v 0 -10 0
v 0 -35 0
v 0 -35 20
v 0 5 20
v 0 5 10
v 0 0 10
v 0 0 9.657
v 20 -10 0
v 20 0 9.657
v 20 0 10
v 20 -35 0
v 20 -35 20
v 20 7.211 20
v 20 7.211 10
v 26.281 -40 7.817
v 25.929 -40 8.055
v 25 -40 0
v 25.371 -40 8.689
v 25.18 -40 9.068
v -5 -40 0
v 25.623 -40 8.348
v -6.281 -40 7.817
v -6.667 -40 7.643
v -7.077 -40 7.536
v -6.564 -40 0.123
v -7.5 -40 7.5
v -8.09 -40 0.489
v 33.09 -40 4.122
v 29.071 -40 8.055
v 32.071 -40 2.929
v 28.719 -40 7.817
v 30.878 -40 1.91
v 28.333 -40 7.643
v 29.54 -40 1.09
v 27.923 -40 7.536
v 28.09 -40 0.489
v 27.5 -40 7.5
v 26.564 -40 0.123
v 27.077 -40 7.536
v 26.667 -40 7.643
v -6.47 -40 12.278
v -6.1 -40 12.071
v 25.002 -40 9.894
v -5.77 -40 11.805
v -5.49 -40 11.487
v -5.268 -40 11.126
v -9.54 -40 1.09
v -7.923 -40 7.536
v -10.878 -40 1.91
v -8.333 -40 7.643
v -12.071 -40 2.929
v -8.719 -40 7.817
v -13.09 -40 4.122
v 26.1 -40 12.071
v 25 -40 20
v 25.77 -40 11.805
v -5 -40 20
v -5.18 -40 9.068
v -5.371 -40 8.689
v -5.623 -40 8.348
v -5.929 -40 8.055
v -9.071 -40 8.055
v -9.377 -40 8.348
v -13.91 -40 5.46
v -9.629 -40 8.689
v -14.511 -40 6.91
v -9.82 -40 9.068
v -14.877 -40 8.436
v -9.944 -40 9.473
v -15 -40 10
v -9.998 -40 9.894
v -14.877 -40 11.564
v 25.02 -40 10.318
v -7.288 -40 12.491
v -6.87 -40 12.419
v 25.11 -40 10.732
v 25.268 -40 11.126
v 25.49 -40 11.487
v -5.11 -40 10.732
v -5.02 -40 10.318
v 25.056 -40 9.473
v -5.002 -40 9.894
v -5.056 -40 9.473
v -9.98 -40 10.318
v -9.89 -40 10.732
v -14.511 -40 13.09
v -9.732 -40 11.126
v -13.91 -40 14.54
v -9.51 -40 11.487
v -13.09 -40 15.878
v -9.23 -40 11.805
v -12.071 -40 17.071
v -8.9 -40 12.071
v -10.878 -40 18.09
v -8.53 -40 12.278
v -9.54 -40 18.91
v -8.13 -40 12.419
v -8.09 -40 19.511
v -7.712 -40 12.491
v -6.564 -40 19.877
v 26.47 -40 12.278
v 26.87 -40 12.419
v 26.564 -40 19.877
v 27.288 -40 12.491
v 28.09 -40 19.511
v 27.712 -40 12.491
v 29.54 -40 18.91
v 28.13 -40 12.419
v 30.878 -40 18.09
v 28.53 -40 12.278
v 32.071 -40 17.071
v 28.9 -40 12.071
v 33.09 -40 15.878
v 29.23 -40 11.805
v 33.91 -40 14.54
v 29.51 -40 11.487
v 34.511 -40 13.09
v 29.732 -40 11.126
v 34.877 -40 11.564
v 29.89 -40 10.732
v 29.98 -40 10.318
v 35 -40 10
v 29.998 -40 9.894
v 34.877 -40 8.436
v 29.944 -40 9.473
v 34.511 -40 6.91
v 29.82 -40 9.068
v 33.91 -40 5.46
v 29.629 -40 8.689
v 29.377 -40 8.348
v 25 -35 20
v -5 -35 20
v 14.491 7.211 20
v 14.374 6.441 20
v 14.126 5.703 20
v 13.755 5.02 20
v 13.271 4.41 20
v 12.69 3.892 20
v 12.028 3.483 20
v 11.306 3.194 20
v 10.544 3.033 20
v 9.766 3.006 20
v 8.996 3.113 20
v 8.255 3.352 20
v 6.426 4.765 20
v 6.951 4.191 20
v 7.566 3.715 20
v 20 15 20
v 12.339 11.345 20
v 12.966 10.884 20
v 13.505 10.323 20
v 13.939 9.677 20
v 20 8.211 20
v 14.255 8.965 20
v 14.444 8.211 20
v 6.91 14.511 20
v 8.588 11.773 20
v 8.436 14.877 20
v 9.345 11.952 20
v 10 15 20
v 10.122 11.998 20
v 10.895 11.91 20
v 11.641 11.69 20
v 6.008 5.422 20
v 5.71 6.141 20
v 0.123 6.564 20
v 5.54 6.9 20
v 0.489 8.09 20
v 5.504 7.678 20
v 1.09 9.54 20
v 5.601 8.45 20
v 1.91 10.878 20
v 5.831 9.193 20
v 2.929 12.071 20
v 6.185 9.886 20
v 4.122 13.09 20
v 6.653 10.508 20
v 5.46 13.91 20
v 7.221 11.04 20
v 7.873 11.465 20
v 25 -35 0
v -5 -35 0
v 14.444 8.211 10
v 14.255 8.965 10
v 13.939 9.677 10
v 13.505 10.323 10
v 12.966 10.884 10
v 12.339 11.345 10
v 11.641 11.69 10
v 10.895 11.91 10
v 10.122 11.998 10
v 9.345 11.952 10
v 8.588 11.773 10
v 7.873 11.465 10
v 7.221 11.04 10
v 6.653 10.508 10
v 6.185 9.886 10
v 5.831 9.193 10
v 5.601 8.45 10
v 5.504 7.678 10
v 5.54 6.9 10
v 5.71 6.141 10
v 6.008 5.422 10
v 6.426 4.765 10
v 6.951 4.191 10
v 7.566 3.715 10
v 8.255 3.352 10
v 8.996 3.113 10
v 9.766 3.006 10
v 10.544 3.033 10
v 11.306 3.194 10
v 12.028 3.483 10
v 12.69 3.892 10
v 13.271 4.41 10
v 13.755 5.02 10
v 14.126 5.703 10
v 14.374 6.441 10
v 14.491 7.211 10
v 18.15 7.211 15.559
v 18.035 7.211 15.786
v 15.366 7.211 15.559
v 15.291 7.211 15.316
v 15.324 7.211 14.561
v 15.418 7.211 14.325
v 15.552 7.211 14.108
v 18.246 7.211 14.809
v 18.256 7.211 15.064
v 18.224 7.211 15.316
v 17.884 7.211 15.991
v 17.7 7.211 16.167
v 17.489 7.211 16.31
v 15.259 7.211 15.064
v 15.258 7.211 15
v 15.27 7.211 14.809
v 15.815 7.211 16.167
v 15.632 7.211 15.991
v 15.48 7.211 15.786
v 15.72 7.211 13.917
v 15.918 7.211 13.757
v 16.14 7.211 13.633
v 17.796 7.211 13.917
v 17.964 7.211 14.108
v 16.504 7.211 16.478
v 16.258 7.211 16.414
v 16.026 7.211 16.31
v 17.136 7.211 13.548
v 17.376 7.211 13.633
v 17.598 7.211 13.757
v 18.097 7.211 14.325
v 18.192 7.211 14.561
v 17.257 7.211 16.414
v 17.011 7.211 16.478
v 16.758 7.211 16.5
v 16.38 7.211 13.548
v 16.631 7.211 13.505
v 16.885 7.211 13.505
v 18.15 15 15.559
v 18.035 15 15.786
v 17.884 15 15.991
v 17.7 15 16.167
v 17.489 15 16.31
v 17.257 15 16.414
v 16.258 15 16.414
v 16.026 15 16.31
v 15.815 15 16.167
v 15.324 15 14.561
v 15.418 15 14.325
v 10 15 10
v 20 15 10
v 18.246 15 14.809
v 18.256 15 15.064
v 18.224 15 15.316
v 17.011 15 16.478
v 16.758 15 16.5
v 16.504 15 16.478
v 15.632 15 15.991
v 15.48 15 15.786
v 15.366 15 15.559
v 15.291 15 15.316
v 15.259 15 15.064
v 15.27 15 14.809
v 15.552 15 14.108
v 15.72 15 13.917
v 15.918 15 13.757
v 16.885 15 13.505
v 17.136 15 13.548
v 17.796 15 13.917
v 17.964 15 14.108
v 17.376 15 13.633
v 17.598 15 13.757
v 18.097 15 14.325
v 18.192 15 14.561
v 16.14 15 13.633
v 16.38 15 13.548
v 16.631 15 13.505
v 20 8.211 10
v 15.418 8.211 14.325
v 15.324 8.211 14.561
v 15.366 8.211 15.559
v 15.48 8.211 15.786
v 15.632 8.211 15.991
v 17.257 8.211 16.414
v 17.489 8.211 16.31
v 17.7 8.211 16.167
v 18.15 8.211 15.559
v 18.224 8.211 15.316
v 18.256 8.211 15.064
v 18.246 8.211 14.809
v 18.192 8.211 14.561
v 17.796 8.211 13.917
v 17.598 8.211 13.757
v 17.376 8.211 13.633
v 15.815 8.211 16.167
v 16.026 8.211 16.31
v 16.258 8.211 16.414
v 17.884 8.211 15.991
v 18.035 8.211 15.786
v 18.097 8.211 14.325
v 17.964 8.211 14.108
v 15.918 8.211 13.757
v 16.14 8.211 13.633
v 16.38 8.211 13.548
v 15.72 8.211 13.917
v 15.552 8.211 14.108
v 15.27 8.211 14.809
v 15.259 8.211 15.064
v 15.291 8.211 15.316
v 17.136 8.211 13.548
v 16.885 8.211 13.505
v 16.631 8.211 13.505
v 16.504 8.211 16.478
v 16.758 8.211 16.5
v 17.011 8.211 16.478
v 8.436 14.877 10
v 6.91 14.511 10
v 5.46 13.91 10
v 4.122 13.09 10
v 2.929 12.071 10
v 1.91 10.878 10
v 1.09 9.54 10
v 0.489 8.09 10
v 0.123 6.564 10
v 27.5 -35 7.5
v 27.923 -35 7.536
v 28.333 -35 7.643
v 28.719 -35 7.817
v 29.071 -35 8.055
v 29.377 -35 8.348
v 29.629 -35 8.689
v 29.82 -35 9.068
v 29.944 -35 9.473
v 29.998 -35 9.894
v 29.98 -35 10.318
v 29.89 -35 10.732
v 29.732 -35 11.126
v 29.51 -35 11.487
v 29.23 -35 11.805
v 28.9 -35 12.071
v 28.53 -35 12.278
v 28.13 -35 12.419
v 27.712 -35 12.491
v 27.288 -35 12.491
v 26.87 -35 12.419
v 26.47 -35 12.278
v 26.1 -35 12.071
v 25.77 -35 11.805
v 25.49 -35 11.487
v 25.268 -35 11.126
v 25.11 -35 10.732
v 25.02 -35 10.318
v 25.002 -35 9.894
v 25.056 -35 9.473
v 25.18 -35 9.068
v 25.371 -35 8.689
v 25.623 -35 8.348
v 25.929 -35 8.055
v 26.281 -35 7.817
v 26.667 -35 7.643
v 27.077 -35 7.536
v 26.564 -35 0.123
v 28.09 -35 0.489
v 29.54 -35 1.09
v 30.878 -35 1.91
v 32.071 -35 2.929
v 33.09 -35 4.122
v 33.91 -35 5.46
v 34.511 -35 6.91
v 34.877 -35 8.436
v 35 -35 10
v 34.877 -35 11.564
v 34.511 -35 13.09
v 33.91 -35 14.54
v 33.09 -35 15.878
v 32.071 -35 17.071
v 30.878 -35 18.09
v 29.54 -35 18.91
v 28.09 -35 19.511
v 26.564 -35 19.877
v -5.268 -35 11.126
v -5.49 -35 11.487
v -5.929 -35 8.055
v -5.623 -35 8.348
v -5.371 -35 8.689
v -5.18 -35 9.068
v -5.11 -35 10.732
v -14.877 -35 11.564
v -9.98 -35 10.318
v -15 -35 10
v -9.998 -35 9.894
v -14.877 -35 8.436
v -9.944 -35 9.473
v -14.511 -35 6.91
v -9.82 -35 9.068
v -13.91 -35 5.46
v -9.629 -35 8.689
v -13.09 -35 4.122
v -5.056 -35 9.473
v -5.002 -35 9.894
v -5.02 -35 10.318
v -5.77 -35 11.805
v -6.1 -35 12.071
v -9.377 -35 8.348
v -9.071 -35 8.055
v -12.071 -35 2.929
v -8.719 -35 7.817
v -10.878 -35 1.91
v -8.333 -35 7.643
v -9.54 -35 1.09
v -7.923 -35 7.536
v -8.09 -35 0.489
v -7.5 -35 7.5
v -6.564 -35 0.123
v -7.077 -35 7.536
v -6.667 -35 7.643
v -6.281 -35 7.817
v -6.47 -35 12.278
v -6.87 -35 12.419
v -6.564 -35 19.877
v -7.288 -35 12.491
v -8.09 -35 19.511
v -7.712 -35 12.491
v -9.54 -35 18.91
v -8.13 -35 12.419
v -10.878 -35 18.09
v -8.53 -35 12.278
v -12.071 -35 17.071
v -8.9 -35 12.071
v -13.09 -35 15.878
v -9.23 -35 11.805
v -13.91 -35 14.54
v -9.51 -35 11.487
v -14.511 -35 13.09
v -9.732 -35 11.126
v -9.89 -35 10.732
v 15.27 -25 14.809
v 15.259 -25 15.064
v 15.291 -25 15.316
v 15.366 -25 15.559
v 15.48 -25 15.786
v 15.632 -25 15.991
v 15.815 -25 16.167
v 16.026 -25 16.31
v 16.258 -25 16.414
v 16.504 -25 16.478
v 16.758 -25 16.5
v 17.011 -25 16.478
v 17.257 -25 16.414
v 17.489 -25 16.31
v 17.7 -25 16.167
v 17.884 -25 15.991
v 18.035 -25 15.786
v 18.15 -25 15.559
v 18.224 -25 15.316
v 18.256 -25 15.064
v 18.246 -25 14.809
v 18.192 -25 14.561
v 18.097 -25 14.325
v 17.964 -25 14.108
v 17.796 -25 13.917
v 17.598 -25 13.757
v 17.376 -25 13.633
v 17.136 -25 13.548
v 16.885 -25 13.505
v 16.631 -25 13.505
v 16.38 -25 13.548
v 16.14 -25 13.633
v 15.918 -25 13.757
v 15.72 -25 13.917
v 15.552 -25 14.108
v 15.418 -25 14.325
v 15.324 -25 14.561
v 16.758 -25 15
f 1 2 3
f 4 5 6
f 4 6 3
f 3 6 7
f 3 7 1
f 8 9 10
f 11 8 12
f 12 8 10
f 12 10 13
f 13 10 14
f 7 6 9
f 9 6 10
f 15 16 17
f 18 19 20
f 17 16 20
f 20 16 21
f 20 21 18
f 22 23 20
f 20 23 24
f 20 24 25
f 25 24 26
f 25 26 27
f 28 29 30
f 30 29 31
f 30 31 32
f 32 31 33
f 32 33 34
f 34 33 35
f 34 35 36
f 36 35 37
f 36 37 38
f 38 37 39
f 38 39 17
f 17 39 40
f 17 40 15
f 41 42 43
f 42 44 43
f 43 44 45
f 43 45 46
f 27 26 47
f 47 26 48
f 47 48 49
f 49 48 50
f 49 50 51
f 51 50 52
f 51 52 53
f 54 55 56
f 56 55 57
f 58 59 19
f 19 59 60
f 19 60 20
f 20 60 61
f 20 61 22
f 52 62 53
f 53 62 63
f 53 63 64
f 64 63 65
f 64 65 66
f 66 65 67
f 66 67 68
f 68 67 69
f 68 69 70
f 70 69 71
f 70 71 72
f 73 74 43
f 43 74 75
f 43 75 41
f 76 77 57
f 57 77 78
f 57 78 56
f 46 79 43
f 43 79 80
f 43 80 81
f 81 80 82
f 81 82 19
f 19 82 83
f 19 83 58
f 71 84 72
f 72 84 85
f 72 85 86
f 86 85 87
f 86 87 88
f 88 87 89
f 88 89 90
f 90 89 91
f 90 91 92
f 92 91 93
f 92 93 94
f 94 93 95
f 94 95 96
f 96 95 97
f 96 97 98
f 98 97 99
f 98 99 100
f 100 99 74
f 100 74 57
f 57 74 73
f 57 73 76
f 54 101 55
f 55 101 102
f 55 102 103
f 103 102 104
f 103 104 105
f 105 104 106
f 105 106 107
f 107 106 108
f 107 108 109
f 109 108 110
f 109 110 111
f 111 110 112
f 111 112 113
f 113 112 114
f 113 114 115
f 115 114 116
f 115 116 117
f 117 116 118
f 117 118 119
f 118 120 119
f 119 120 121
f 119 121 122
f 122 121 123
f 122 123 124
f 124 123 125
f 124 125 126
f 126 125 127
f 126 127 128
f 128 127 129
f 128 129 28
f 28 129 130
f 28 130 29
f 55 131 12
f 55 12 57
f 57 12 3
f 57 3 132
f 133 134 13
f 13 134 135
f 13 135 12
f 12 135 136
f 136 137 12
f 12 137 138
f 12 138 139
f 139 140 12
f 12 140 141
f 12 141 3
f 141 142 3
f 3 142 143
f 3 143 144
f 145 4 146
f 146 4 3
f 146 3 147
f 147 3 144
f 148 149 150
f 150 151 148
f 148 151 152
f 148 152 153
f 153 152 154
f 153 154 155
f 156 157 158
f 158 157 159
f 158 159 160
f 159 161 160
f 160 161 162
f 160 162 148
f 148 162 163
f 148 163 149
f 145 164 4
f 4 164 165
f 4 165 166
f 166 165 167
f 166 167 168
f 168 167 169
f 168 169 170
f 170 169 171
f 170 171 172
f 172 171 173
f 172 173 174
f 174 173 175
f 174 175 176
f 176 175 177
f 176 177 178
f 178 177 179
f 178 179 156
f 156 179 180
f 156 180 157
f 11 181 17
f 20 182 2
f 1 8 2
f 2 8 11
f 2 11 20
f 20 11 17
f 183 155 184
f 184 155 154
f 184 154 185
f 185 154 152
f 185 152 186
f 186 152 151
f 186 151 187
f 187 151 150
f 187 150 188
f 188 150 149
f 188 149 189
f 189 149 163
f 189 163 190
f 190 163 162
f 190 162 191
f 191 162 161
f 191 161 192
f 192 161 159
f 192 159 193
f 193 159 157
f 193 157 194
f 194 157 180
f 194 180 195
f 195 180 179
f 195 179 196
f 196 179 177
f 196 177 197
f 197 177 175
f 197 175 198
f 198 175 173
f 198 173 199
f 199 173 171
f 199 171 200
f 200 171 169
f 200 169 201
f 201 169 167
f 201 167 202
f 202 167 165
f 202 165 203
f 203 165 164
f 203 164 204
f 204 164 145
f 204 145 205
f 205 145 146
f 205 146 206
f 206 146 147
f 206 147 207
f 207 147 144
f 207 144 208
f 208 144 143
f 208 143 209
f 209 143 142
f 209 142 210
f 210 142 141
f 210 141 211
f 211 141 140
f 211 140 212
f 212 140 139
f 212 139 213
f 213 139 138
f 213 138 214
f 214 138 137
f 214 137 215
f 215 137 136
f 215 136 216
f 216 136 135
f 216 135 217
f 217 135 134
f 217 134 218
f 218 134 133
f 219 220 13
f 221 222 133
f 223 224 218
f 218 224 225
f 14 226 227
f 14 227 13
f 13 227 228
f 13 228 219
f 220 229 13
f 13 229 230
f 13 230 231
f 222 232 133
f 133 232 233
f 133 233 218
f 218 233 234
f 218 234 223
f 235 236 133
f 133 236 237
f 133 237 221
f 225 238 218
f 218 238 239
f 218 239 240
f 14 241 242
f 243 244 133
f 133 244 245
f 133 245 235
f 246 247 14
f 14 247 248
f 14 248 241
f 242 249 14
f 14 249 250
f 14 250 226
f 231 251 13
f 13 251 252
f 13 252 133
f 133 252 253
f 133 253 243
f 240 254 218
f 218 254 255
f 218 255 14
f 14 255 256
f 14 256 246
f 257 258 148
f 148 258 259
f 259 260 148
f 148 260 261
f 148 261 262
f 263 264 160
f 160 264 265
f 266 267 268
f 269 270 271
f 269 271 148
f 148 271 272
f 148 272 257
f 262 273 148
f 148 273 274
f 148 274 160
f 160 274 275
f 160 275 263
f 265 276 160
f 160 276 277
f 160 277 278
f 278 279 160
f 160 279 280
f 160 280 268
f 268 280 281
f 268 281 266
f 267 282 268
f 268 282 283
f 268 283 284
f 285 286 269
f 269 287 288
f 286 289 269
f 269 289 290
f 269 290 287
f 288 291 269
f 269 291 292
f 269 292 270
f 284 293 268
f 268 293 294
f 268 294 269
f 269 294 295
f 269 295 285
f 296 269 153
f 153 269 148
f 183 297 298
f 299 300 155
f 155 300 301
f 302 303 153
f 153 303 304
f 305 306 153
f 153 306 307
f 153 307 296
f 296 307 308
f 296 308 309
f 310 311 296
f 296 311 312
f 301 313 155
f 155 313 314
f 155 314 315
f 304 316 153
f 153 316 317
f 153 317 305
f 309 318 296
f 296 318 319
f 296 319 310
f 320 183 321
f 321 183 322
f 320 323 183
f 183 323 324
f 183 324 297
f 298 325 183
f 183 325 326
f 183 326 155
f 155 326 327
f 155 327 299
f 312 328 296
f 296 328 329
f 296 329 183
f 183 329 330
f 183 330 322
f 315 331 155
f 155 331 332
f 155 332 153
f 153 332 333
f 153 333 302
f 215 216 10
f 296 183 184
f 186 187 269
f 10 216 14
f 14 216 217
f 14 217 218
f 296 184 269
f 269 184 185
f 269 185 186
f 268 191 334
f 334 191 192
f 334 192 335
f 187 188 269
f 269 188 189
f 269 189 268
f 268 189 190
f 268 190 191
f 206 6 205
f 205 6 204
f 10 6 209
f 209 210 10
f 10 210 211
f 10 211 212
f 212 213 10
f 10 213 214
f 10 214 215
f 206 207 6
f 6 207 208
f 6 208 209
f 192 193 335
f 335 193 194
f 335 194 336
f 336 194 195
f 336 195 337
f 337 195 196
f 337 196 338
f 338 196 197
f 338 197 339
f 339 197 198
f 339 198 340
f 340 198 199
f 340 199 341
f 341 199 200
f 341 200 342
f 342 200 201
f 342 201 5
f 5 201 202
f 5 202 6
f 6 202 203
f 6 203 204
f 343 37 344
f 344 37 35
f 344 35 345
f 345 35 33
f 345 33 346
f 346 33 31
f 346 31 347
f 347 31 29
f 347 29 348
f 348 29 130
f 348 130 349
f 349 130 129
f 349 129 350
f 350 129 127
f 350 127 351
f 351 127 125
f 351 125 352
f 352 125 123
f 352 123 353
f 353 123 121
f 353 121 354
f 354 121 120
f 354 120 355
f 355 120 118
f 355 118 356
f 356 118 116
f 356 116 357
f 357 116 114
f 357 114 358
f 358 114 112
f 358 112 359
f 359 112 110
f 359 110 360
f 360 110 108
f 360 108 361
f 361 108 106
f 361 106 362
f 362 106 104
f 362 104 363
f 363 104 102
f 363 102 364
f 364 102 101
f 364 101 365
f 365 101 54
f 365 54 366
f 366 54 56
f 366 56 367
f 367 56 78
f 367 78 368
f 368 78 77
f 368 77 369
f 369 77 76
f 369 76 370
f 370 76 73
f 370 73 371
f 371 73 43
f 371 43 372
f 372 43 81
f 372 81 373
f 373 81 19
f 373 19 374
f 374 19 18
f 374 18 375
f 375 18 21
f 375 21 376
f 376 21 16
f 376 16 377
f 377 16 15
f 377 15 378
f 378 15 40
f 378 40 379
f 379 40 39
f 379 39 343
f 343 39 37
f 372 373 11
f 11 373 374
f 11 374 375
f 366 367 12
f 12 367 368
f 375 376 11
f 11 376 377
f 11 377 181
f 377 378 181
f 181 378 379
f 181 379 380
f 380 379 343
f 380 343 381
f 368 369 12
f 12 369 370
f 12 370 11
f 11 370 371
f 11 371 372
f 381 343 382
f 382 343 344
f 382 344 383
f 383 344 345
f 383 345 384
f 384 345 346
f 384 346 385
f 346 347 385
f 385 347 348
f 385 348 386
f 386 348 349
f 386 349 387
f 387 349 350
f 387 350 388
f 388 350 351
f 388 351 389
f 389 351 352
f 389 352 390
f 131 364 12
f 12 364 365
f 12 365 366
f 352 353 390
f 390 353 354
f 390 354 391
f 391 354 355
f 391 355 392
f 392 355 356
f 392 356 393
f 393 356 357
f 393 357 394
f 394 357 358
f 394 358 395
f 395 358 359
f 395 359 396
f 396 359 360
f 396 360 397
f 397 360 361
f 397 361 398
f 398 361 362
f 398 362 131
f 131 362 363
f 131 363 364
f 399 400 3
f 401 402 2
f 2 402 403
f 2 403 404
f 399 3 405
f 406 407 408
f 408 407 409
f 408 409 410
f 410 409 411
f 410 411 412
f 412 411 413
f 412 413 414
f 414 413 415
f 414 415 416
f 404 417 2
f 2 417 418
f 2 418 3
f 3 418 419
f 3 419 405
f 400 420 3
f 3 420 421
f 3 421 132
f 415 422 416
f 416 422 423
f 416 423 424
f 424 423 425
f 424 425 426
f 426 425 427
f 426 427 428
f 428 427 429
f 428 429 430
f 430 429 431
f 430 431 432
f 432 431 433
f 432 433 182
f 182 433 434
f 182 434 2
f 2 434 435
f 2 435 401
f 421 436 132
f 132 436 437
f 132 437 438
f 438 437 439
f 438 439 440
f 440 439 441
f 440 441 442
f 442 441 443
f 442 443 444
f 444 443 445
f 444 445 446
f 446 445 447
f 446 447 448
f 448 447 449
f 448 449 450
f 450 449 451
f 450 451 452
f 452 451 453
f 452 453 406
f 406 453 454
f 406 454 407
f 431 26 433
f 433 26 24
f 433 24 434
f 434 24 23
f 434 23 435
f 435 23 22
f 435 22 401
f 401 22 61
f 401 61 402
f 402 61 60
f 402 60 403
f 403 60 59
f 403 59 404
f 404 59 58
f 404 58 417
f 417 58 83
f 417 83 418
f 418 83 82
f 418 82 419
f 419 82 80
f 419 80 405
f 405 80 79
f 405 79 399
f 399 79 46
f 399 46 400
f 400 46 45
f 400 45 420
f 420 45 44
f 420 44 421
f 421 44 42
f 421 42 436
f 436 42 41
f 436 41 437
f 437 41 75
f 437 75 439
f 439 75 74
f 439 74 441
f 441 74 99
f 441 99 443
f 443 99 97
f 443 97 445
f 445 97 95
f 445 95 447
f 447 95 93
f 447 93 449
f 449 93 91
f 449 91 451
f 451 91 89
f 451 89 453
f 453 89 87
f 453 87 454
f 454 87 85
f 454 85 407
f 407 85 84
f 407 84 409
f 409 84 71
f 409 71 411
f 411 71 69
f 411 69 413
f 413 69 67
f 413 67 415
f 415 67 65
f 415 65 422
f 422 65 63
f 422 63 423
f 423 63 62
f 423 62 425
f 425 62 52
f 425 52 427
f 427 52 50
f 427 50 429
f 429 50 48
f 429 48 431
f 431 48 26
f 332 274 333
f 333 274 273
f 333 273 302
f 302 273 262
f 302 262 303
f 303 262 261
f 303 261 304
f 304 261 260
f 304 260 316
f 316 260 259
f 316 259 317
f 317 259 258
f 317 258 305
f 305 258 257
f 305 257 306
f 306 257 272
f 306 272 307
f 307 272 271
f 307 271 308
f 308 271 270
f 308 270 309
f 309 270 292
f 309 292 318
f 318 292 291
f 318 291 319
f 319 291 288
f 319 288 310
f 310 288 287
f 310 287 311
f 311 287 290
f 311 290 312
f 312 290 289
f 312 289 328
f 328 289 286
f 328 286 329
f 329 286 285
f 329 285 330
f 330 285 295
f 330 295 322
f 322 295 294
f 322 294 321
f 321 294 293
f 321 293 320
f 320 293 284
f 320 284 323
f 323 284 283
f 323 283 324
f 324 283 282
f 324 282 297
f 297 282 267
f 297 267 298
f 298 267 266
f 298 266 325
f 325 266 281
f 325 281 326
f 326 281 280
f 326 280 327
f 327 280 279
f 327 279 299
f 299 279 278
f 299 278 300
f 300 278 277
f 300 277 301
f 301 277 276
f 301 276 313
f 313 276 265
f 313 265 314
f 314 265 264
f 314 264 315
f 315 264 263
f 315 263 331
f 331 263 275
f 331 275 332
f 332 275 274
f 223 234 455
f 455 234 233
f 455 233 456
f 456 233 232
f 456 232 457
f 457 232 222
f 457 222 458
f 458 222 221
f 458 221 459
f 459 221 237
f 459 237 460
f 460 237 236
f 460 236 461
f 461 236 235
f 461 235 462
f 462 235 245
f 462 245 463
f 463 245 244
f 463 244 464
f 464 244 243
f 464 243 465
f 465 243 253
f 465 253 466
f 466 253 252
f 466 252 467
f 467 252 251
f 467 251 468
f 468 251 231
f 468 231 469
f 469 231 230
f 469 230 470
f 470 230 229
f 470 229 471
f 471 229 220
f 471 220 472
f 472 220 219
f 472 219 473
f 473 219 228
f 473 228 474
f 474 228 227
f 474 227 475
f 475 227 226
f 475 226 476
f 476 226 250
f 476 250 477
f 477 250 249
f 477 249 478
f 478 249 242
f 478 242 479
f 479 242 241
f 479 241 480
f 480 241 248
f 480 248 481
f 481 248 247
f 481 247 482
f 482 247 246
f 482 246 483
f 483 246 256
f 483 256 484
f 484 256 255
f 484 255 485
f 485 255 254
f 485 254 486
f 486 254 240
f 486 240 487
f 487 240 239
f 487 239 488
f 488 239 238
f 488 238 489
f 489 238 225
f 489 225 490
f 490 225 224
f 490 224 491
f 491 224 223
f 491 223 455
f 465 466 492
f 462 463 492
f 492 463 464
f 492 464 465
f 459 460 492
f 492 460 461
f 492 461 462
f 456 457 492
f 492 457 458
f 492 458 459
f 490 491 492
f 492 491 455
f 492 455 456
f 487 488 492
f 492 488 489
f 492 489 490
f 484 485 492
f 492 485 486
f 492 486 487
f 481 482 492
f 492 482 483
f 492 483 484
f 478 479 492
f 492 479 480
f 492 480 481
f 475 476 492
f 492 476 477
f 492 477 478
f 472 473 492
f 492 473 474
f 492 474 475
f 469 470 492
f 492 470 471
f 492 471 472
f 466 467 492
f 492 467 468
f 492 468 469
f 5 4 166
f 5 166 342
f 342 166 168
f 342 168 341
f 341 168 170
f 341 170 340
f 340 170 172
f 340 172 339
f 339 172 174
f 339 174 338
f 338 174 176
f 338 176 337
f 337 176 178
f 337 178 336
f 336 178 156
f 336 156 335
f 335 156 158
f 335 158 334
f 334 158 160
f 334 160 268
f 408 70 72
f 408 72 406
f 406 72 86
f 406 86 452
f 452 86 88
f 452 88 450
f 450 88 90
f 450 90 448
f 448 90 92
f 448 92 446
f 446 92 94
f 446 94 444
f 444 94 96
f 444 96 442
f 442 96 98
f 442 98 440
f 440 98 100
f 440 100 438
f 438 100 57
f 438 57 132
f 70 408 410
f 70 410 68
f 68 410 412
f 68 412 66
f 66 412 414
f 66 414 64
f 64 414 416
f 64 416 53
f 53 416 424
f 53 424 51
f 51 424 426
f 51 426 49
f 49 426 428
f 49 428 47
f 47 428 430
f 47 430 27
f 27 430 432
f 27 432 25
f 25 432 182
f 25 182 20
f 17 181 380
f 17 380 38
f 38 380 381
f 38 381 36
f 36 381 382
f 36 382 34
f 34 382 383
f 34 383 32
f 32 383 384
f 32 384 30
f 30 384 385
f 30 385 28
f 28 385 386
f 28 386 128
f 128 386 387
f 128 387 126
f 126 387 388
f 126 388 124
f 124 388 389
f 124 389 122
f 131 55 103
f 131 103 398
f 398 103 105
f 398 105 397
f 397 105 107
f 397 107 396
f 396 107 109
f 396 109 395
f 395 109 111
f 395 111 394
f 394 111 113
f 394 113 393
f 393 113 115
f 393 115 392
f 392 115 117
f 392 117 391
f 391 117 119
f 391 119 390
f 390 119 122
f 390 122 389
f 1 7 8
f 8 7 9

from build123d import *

# Parameters (mm, degrees)
ESQUISSE2_W             = 20
ESQUISSE2_H             = 40
BOSS_EXTRU_2_DEPTH      = 20
BOSS_EXTRU_3_DEPTH      = 10
ESQUISSE6_W             = 50
ESQUISSE6_H             = 20
ESQUISSE6_R             = 2.5
BOSS_EXTRU_4_DEPTH      = 5
ESQUISSE8_R             = 1.5
ENL_V_MAT_EXTRU_1_DEPTH = 40
CONG_2_R                = 10
CONG_3_R                = 10
CHANFREIN2_SIZE         = 10
CHANFREIN2_SIZE2        = 9.656887748


with BuildPart() as part:
    # Esquisse2 → Boss.-Extru.2 (new body)
    with BuildSketch(Plane.XY):
        with Locations((10, -20)):
            Rectangle(ESQUISSE2_W, ESQUISSE2_H)
    extrude(amount=BOSS_EXTRU_2_DEPTH)

    # Esquisse3 → Boss.-Extru.3 (add)
    with BuildSketch(Plane.XY.offset(20)):
        with BuildLine():
            Line((0, 15), (0, 0))
            Line((0, 0), (20, 0))
            Line((20, 0), (20, 7.210541204))
            Line((20, 7.210541204), (14.490680751, 7.210541204))
            ThreePointArc((14.490680751, 7.210541204), (5.50498976, 7.288144059), (14.443549392, 8.210541204))
            Line((14.443549392, 8.210541204), (20, 8.210541204))
            Line((20, 8.210541204), (20, 15))
            Line((20, 15), (0, 15))
        make_face()
    extrude(amount=-BOSS_EXTRU_3_DEPTH)

    # Esquisse6 → Boss.-Extru.4 (add)
    with BuildSketch(Plane.XZ.offset(40)):
        with Locations((10, 10)):
            Rectangle(ESQUISSE6_W, ESQUISSE6_H)
        with Locations(Location((-7.5, 10, 0), (0, 0, 270))):
            Circle(ESQUISSE6_R, mode=Mode.SUBTRACT)
        with Locations(Location((27.5, 10, 0), (0, 0, 270))):
            Circle(ESQUISSE6_R, mode=Mode.SUBTRACT)
    extrude(amount=-BOSS_EXTRU_4_DEPTH)

    # Esquisse8 → Enlèv. mat.-Extru.1 (cut)
    with BuildSketch(Plane(origin=(0, 15, 0), x_dir=(1, 0, 0), z_dir=(0, 1, 0))):
        with Locations(Location((16.757752744, -15, 0), (0, 0, 270))):
            Circle(ESQUISSE8_R)
    extrude(amount=-ENL_V_MAT_EXTRU_1_DEPTH, mode=Mode.SUBTRACT)

    # Congé2
    cong_2_edges = [part.edges().sort_by_distance(p)[0] for p in [
        (0, 15, 15),
    ]]
    fillet(cong_2_edges, radius=CONG_2_R)

    # Congé3
    cong_3_edges = [part.edges().sort_by_distance(p)[0] for p in [
        (-15, -37.5, 0),
        (-15, -37.5, 20),
        (35, -37.5, 20),
        (35, -37.5, 0),
    ]]
    fillet(cong_3_edges, radius=CONG_3_R - 0.0001)  # a hair under: the kernel refuses the full size

    # Chanfrein2
    chanfrein2_edges = [part.edges().sort_by_distance(p)[0] for p in [
        (10, 0, 0),
    ]]
    chanfrein2_side = [part.faces().sort_by_distance(p)[0] for p in [
        (10, -21.029431142, 0),
    ]]
    chamfer(chanfrein2_edges, length=CHANFREIN2_SIZE, length2=CHANFREIN2_SIZE2, reference=chanfrein2_side[0])


solid = part.part
